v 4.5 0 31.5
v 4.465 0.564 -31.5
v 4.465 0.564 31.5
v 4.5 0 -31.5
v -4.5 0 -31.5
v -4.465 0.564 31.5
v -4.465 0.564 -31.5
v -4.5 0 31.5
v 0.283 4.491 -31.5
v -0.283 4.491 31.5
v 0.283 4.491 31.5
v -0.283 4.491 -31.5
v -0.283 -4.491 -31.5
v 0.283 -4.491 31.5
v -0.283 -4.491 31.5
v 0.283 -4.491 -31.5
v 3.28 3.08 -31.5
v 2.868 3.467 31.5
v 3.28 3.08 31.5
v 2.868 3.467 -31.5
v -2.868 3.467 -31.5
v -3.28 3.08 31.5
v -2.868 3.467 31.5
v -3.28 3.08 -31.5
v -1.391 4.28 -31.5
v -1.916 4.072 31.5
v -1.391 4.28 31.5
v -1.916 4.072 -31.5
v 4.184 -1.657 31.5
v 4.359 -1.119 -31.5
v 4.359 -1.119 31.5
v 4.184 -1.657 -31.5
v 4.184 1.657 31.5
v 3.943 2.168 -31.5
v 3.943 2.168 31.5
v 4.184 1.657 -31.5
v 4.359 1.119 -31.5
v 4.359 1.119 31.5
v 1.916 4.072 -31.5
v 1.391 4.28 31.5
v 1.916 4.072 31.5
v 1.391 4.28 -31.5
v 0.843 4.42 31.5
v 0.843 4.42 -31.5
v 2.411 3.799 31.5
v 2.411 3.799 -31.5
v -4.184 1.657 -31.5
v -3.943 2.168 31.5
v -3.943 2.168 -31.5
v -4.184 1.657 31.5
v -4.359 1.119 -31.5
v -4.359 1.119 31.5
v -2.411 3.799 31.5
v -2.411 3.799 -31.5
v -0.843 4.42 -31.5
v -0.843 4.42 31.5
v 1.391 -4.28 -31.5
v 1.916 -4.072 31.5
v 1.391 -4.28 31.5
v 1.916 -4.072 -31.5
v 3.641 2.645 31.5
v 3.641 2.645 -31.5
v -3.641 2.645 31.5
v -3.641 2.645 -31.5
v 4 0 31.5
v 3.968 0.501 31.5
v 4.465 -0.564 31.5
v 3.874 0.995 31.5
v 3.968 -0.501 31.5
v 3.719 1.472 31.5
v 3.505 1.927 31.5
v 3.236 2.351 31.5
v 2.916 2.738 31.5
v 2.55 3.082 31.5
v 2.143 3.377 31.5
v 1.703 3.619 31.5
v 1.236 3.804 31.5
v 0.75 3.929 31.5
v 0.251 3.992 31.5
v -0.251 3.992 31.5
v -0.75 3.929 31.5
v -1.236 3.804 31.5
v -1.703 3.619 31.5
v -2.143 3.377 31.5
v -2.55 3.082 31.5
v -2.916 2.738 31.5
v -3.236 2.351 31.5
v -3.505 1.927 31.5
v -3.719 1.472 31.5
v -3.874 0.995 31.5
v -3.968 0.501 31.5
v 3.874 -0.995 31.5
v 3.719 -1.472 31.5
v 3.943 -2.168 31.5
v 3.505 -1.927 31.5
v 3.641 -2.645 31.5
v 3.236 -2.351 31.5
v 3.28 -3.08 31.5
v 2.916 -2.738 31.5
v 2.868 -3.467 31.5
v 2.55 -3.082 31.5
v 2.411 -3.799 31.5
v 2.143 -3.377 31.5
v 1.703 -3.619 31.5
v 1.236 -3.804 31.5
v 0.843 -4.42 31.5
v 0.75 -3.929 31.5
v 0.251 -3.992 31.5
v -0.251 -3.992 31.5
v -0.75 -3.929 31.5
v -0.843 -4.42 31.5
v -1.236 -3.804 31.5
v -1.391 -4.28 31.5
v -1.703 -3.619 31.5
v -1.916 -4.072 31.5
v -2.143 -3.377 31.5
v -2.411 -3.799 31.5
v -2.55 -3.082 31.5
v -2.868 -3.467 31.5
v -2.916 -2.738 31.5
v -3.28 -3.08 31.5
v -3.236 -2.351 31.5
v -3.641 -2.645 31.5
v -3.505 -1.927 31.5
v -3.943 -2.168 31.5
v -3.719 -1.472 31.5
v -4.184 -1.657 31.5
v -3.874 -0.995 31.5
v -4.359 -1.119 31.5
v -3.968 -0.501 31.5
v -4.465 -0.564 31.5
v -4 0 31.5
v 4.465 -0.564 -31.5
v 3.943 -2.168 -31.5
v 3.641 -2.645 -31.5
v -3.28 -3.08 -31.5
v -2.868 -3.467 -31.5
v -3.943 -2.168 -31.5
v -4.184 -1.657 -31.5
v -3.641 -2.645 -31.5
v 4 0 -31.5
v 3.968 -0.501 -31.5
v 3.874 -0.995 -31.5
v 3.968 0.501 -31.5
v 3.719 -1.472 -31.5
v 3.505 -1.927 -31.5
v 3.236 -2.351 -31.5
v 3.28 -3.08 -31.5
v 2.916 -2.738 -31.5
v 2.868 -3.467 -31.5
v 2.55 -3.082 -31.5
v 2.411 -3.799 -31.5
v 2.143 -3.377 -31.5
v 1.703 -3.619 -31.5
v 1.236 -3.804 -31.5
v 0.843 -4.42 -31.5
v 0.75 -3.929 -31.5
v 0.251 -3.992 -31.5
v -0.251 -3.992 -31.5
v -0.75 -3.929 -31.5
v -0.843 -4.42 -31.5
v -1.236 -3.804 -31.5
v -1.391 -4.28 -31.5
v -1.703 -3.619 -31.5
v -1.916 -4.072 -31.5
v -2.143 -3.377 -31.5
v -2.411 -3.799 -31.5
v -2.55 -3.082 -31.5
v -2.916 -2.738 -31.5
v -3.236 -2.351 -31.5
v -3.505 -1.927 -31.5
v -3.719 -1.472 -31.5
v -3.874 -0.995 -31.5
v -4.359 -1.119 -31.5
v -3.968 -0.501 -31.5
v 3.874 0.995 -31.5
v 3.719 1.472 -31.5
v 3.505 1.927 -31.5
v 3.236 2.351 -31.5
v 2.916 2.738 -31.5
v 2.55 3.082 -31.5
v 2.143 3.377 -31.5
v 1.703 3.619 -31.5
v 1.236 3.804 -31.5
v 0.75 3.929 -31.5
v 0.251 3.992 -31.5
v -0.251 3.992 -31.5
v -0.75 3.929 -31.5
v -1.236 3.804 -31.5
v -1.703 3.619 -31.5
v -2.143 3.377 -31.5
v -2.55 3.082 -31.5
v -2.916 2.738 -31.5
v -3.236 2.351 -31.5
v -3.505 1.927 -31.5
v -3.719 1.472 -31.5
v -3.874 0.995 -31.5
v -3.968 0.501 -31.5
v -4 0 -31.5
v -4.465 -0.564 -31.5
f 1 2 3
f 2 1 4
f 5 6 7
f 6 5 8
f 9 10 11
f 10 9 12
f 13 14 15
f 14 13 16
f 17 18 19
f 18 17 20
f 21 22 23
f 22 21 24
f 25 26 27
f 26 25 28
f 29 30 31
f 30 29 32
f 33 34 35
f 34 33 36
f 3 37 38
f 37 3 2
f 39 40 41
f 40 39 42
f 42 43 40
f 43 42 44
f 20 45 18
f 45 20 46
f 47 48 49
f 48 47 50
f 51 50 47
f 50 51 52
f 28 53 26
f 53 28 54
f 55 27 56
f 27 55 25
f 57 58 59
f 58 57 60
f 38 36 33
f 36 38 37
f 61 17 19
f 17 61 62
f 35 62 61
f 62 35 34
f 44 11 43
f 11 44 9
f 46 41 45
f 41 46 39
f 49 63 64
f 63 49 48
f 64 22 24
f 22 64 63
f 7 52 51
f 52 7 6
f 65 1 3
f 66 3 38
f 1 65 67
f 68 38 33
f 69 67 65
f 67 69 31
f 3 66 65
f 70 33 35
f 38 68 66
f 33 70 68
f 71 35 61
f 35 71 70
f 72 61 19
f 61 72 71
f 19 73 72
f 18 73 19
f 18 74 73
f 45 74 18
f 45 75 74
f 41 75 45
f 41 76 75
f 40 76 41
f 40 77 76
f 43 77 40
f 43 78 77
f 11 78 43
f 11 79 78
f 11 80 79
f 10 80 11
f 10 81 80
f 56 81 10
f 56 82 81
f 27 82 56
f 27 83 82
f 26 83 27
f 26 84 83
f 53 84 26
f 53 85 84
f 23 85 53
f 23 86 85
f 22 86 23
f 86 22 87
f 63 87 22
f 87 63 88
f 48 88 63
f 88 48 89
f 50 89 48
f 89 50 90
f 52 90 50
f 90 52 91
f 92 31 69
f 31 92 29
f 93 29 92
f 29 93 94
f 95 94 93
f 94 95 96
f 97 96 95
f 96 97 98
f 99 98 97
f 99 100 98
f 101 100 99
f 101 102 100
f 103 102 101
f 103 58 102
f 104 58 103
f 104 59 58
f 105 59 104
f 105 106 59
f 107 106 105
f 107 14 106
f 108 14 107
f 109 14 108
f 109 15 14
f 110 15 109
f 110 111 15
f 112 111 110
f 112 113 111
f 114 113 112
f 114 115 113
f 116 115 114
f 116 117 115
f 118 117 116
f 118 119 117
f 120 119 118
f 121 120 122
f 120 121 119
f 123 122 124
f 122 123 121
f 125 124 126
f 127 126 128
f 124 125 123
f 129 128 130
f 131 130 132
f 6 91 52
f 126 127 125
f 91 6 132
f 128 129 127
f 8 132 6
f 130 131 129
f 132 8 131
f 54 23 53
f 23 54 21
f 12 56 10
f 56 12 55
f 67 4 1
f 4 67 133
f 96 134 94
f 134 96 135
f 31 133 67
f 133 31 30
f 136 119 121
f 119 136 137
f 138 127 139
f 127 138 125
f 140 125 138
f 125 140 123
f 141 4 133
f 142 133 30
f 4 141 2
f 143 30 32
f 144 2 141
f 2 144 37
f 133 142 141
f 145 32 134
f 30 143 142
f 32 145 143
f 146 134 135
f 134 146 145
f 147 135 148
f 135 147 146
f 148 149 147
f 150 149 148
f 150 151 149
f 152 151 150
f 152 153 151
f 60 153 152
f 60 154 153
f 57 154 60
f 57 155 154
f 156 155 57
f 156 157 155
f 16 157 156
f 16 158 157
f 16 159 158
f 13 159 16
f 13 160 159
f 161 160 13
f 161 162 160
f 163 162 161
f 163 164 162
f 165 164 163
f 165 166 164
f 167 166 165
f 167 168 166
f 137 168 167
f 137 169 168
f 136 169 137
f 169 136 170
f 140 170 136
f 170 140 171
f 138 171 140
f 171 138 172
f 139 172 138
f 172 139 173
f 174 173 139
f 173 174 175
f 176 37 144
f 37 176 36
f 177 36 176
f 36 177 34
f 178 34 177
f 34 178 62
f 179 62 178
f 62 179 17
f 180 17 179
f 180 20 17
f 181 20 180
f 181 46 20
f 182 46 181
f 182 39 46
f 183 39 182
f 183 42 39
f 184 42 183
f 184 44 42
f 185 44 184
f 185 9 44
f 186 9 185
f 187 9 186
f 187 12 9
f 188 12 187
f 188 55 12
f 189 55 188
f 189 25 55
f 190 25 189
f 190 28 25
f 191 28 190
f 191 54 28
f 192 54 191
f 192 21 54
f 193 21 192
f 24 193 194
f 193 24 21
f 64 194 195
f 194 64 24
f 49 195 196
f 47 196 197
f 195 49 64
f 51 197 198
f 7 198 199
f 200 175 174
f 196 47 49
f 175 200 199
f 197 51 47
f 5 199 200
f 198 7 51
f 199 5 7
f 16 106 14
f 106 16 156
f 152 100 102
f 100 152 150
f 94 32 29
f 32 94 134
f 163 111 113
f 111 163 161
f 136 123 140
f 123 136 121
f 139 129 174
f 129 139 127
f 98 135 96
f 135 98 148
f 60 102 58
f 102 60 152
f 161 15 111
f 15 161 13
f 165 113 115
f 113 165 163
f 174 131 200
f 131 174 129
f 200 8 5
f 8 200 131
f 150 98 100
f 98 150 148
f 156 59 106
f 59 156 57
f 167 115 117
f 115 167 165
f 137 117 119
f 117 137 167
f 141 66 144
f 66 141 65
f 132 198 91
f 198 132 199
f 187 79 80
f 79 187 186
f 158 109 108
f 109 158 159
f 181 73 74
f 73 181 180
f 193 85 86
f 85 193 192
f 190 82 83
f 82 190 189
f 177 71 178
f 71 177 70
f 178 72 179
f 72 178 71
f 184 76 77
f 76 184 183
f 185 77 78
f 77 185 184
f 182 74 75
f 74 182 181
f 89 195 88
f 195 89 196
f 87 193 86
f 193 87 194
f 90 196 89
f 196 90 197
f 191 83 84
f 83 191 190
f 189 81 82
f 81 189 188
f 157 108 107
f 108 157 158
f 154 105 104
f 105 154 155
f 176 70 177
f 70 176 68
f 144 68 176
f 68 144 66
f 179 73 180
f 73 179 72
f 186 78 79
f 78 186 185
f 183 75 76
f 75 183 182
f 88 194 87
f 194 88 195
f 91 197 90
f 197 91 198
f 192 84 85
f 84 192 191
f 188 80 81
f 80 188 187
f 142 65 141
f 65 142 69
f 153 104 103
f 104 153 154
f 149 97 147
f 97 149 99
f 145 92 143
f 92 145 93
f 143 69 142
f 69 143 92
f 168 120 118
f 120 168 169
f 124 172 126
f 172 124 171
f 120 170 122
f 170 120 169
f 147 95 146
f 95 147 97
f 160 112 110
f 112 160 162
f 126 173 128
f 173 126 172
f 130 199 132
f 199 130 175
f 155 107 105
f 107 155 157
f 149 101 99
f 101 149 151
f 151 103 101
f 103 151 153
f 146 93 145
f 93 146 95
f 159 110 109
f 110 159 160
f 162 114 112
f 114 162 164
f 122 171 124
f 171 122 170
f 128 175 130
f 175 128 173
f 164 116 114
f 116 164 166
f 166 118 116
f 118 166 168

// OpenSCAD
$fn = 50;


difference() {
	union() {
		translate(v = [0, 0, -31.5000000000]) {
			cylinder(h = 63, r = 4.5000000000);
		}
	}
	union() {
		translate(v = [0, 0, -100.0000000000]) {
			cylinder(h = 200, r = 4);
		}
	}
}
